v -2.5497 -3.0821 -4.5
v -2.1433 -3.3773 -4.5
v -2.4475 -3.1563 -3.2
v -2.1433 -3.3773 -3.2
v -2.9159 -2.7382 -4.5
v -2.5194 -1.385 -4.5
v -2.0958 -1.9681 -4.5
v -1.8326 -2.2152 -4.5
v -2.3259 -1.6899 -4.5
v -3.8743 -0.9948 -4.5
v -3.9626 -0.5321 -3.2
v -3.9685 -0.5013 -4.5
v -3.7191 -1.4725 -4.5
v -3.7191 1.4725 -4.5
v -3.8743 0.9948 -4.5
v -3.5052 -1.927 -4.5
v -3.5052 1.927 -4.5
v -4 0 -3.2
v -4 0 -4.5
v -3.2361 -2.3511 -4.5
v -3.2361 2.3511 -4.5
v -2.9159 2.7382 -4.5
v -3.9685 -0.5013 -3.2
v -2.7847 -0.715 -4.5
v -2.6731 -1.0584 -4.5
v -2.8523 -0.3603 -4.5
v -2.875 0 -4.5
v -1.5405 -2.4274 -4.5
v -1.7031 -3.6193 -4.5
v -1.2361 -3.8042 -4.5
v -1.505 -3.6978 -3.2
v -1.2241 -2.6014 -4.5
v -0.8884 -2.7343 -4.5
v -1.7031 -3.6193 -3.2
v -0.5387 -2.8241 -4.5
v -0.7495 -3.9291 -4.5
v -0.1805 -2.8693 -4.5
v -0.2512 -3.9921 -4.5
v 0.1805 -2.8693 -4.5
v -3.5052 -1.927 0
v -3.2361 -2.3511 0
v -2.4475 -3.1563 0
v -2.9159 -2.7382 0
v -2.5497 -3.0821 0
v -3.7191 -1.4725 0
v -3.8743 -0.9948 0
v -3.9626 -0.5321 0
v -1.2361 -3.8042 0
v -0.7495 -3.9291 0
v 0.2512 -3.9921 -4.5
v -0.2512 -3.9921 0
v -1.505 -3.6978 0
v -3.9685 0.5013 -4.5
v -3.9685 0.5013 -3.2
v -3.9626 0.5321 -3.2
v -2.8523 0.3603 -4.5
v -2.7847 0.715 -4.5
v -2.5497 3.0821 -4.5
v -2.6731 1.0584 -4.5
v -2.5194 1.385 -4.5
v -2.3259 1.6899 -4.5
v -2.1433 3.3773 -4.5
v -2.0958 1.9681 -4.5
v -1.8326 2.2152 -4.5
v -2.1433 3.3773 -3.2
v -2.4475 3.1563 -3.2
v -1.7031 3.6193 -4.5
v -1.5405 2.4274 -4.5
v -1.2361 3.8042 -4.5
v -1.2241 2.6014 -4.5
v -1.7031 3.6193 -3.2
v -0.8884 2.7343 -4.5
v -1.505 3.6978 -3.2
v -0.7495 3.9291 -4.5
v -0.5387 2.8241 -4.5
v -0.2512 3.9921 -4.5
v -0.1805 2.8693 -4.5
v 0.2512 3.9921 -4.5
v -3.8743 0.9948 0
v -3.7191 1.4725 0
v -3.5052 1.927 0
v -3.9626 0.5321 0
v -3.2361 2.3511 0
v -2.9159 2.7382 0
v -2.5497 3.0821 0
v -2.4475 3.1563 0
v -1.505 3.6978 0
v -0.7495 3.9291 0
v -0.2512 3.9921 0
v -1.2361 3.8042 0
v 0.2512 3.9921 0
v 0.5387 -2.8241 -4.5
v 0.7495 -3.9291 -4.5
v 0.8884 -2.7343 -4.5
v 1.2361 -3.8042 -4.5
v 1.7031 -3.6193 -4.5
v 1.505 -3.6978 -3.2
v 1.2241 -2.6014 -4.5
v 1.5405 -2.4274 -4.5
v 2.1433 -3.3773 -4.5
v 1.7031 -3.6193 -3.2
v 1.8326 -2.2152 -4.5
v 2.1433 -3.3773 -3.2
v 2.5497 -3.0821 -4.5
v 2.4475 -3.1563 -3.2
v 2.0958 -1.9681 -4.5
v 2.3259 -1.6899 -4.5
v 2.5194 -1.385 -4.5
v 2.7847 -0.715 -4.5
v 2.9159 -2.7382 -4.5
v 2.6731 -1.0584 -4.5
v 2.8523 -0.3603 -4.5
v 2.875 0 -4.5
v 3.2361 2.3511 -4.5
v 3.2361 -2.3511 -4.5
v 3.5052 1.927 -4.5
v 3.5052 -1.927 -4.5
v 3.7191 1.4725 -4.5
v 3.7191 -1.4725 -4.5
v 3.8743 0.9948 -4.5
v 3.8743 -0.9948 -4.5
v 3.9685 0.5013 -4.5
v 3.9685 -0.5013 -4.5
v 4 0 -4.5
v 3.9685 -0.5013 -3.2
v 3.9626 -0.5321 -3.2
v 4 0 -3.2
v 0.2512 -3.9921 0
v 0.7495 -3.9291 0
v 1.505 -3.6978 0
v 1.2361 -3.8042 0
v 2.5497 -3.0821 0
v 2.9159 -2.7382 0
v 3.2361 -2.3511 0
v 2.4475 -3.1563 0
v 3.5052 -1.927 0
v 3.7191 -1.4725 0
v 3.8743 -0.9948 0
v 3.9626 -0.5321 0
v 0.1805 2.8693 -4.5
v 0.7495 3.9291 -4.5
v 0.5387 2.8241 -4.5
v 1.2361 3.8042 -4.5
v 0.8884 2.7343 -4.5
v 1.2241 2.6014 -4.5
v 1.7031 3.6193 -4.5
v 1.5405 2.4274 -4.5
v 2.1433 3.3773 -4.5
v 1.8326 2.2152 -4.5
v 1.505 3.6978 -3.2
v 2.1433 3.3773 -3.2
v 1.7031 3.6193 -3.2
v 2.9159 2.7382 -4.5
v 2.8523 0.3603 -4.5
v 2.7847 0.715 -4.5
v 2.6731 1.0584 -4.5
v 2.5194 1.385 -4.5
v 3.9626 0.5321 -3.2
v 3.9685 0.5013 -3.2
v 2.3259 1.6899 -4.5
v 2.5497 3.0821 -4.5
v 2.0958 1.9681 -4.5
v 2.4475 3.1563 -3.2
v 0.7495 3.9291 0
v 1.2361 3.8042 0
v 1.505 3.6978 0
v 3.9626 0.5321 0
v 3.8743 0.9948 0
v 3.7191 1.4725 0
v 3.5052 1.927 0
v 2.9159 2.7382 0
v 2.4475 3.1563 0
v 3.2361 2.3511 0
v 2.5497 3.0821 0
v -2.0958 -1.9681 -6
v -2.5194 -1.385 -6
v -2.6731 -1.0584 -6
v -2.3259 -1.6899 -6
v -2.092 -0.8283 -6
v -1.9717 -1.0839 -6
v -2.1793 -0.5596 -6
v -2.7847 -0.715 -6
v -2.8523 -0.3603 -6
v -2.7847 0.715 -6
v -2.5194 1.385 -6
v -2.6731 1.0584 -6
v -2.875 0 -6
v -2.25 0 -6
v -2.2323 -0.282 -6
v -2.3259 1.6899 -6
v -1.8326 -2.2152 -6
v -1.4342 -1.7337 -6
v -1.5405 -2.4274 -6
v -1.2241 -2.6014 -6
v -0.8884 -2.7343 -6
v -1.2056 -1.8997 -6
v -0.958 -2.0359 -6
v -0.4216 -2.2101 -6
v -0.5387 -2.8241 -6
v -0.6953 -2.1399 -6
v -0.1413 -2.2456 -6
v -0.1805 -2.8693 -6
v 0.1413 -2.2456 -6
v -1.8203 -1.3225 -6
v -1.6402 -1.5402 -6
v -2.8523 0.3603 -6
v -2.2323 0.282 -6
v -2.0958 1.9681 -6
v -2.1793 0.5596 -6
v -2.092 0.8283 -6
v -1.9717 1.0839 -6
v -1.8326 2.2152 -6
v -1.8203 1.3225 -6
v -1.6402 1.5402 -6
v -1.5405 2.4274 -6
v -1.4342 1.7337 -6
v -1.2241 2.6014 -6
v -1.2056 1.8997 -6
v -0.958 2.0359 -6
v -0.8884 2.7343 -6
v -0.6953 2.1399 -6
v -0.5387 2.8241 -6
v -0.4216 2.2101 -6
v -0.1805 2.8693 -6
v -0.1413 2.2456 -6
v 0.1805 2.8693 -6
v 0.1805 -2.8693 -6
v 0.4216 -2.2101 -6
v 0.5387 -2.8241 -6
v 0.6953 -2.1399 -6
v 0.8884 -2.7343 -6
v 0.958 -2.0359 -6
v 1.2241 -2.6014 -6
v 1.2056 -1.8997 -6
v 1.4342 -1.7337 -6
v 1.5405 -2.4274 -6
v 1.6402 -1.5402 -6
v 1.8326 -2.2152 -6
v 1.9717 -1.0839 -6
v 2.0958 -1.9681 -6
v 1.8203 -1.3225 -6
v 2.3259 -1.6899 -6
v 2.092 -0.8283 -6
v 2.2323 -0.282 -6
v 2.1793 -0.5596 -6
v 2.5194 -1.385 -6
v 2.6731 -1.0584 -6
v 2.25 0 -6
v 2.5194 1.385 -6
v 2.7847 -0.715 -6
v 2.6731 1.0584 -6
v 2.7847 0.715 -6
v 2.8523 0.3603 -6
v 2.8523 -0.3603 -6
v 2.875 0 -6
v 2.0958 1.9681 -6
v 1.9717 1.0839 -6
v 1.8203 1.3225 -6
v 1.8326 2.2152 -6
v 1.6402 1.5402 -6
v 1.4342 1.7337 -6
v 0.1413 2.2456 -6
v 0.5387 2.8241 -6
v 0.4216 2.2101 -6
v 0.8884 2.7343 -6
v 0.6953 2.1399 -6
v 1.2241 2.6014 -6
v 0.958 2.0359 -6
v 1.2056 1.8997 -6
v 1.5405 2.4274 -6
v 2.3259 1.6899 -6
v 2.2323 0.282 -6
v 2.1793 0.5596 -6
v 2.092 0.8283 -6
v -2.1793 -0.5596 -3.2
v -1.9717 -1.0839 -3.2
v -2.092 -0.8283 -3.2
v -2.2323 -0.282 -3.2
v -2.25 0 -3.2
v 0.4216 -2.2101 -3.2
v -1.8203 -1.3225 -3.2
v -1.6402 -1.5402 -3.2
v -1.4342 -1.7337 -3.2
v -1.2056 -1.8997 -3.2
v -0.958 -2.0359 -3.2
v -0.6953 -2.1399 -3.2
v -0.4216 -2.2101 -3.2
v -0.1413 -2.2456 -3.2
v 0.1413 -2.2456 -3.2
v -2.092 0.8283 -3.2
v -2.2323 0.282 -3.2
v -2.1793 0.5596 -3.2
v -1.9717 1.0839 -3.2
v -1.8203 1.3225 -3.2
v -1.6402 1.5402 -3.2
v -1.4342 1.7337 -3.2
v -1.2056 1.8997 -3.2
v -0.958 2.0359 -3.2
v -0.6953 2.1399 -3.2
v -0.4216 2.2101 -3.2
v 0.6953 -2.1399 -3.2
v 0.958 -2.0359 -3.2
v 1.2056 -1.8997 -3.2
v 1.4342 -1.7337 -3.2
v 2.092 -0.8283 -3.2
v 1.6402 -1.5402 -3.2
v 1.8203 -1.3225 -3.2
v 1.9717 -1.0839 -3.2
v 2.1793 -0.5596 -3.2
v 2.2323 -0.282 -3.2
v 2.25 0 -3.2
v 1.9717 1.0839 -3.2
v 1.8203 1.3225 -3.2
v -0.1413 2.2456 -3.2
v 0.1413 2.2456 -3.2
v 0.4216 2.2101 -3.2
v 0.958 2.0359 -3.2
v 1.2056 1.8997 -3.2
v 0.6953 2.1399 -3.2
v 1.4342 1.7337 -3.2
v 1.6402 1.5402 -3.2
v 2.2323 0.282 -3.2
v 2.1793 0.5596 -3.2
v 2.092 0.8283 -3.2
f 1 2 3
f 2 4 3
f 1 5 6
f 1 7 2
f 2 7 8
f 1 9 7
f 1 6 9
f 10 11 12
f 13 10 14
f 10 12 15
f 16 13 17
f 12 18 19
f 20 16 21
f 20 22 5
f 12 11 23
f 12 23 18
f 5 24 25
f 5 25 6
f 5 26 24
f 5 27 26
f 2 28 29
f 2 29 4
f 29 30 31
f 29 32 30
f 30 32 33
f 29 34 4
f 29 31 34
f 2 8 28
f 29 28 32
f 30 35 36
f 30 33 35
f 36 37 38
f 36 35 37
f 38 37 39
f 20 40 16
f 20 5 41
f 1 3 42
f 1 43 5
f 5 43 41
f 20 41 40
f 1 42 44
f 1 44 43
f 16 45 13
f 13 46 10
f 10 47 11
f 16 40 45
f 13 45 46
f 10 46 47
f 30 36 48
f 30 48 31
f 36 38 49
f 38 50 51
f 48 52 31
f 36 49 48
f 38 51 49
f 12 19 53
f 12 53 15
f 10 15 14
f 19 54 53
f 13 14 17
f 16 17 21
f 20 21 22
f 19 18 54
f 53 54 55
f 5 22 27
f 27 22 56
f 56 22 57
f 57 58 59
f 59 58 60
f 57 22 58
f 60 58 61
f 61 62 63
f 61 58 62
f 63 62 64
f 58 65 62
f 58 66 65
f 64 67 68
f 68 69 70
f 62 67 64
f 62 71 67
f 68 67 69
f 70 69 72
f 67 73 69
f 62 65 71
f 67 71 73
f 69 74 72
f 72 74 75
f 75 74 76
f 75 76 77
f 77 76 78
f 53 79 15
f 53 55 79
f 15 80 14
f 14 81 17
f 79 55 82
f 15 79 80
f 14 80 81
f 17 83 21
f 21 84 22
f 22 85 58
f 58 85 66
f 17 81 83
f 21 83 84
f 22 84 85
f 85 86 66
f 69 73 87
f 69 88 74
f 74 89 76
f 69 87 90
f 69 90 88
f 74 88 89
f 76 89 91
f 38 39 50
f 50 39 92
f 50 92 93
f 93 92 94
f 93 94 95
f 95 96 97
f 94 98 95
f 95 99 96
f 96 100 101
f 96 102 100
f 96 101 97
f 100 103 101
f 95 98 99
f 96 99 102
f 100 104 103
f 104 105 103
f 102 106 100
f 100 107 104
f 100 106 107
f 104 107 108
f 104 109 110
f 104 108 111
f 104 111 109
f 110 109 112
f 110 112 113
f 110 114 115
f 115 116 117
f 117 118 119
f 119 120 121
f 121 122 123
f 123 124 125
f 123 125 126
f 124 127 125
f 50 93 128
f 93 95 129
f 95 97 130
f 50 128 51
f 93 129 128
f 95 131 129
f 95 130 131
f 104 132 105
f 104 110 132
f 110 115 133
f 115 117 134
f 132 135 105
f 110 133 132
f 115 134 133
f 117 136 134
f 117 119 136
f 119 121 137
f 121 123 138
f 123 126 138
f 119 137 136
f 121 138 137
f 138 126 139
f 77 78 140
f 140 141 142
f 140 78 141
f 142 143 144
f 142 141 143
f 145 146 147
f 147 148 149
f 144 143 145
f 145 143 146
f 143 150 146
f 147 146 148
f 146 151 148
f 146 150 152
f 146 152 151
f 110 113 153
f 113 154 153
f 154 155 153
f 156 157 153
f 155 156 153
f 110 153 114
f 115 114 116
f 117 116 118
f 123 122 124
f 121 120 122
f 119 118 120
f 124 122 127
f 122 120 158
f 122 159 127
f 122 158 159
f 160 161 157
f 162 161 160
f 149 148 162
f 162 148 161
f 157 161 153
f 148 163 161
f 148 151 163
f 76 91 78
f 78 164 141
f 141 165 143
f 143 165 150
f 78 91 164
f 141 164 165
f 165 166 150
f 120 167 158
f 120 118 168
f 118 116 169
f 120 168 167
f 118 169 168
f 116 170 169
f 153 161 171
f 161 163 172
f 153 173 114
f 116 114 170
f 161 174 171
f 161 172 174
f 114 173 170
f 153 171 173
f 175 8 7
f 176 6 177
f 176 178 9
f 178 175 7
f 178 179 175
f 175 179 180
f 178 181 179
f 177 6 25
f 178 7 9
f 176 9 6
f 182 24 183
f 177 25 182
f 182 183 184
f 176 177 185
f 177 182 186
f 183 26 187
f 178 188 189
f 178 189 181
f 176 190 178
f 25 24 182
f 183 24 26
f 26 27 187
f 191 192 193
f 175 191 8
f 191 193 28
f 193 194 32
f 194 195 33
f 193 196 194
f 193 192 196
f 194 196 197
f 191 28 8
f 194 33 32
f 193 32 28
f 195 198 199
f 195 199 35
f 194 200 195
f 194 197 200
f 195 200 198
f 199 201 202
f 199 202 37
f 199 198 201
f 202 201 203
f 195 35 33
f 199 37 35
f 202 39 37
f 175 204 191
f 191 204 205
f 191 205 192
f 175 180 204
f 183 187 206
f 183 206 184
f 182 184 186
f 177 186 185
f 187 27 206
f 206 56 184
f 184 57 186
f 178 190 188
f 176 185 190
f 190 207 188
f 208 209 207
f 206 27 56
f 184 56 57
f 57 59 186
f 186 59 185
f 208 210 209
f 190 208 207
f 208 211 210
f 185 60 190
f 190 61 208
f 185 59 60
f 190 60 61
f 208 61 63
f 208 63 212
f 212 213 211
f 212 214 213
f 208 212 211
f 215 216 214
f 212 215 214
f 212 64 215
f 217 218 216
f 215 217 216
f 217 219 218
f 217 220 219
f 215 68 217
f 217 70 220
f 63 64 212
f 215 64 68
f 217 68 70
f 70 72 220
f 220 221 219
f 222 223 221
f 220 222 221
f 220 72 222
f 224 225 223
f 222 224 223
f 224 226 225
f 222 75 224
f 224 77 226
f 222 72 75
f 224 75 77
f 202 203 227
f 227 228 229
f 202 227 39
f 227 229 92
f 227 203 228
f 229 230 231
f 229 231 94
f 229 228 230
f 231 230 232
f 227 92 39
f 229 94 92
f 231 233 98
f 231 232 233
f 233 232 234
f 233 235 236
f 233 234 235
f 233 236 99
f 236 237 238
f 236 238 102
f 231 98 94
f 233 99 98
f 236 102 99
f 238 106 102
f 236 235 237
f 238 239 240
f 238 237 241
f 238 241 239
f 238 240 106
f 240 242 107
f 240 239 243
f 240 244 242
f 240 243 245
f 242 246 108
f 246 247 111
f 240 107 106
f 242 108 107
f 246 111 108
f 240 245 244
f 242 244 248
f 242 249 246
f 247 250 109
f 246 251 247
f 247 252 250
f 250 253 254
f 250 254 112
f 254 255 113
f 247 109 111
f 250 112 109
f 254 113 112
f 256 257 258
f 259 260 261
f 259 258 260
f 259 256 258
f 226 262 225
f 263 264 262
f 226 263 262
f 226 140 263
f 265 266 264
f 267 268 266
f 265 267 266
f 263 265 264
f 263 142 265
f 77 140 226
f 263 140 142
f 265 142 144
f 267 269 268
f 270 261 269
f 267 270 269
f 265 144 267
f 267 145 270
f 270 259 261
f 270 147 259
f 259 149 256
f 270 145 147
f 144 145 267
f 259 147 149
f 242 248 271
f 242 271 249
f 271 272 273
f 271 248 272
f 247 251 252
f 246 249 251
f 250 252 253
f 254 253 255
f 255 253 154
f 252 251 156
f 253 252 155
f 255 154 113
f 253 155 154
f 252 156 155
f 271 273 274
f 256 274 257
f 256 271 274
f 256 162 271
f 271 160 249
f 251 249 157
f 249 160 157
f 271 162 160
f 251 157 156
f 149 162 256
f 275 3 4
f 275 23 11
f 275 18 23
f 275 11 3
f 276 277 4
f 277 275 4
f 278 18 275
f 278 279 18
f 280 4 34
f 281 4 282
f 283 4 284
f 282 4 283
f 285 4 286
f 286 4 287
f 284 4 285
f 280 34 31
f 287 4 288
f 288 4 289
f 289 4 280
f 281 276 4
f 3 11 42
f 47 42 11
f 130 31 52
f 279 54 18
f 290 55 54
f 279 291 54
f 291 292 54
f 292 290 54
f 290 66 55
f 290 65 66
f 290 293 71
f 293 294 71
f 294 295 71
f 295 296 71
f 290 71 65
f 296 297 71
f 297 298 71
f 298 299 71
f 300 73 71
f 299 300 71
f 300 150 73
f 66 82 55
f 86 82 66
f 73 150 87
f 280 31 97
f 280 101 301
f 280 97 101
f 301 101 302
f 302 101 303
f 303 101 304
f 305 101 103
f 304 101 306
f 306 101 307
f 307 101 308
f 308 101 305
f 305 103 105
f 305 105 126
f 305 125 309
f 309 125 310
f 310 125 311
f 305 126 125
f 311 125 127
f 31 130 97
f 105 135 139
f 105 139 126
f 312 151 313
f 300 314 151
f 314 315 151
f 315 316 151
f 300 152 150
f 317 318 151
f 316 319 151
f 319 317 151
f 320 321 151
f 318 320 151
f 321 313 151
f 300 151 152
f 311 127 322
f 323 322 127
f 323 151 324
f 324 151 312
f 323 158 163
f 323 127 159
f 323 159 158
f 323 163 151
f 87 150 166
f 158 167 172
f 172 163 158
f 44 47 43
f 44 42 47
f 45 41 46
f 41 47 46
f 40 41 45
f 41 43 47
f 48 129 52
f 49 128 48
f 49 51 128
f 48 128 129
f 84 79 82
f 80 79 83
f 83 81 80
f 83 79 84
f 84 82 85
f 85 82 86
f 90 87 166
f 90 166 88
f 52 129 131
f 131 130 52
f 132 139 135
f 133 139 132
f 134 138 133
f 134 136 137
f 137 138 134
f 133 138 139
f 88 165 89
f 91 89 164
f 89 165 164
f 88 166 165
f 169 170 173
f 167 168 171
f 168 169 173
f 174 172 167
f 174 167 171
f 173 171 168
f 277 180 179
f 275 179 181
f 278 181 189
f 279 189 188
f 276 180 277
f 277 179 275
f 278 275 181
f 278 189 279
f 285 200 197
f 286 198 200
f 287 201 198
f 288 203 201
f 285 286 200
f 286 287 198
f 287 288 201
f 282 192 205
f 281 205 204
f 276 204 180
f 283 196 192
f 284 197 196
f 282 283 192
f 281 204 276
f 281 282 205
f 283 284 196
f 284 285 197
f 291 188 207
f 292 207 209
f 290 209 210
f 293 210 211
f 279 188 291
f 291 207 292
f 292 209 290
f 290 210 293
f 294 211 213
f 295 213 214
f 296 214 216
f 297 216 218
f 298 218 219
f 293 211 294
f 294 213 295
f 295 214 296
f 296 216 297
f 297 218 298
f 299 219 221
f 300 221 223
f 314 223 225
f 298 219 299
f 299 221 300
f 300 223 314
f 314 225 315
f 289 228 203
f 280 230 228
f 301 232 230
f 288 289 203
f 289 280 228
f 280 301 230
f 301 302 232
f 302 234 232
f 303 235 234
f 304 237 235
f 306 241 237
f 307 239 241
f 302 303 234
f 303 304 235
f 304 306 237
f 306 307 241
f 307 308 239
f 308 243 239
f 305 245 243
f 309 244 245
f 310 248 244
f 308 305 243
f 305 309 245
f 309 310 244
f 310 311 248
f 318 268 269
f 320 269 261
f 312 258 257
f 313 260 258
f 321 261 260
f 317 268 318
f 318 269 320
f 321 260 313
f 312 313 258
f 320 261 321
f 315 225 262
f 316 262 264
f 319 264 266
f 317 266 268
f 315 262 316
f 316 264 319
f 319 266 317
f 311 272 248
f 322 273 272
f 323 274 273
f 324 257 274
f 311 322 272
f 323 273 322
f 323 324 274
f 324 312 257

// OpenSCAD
$fn = 50;

difference() {
	union() {
		translate(v = [0, 0, -4.5]) {
			cylinder(h = 7.5, r = 4.0);
		}
		#translate(v = [0, 0, -6.0]) {
			cylinder(h = 6, r = 2.875);
		}
	}
	union() {
		translate(v = [0, 0, 0]) {
			rotate(a = [0, 0, 0]) {
				difference() {
					union() {
						translate(v = [0, 0, -3.2]) {
							linear_extrude(height = 3.2) {
								polygon(points = [[4.2698, 0.0], [2.1349000000000005, 3.697755269078796], [-2.134899999999999, 3.6977552690787965], [-4.2698, 5.228996902999369e-16], [-2.134900000000002, -3.6977552690787956], [2.1348999999999974, -3.697755269078798]]);
							}
						}
					}
					union();
				}
			}
		}
		#cylinder(h = 3, r = 5.0);
		#translate(v = [0, 0, -100.0]) {
			cylinder(h = 200, r = 2.25);
		}
	}
}
